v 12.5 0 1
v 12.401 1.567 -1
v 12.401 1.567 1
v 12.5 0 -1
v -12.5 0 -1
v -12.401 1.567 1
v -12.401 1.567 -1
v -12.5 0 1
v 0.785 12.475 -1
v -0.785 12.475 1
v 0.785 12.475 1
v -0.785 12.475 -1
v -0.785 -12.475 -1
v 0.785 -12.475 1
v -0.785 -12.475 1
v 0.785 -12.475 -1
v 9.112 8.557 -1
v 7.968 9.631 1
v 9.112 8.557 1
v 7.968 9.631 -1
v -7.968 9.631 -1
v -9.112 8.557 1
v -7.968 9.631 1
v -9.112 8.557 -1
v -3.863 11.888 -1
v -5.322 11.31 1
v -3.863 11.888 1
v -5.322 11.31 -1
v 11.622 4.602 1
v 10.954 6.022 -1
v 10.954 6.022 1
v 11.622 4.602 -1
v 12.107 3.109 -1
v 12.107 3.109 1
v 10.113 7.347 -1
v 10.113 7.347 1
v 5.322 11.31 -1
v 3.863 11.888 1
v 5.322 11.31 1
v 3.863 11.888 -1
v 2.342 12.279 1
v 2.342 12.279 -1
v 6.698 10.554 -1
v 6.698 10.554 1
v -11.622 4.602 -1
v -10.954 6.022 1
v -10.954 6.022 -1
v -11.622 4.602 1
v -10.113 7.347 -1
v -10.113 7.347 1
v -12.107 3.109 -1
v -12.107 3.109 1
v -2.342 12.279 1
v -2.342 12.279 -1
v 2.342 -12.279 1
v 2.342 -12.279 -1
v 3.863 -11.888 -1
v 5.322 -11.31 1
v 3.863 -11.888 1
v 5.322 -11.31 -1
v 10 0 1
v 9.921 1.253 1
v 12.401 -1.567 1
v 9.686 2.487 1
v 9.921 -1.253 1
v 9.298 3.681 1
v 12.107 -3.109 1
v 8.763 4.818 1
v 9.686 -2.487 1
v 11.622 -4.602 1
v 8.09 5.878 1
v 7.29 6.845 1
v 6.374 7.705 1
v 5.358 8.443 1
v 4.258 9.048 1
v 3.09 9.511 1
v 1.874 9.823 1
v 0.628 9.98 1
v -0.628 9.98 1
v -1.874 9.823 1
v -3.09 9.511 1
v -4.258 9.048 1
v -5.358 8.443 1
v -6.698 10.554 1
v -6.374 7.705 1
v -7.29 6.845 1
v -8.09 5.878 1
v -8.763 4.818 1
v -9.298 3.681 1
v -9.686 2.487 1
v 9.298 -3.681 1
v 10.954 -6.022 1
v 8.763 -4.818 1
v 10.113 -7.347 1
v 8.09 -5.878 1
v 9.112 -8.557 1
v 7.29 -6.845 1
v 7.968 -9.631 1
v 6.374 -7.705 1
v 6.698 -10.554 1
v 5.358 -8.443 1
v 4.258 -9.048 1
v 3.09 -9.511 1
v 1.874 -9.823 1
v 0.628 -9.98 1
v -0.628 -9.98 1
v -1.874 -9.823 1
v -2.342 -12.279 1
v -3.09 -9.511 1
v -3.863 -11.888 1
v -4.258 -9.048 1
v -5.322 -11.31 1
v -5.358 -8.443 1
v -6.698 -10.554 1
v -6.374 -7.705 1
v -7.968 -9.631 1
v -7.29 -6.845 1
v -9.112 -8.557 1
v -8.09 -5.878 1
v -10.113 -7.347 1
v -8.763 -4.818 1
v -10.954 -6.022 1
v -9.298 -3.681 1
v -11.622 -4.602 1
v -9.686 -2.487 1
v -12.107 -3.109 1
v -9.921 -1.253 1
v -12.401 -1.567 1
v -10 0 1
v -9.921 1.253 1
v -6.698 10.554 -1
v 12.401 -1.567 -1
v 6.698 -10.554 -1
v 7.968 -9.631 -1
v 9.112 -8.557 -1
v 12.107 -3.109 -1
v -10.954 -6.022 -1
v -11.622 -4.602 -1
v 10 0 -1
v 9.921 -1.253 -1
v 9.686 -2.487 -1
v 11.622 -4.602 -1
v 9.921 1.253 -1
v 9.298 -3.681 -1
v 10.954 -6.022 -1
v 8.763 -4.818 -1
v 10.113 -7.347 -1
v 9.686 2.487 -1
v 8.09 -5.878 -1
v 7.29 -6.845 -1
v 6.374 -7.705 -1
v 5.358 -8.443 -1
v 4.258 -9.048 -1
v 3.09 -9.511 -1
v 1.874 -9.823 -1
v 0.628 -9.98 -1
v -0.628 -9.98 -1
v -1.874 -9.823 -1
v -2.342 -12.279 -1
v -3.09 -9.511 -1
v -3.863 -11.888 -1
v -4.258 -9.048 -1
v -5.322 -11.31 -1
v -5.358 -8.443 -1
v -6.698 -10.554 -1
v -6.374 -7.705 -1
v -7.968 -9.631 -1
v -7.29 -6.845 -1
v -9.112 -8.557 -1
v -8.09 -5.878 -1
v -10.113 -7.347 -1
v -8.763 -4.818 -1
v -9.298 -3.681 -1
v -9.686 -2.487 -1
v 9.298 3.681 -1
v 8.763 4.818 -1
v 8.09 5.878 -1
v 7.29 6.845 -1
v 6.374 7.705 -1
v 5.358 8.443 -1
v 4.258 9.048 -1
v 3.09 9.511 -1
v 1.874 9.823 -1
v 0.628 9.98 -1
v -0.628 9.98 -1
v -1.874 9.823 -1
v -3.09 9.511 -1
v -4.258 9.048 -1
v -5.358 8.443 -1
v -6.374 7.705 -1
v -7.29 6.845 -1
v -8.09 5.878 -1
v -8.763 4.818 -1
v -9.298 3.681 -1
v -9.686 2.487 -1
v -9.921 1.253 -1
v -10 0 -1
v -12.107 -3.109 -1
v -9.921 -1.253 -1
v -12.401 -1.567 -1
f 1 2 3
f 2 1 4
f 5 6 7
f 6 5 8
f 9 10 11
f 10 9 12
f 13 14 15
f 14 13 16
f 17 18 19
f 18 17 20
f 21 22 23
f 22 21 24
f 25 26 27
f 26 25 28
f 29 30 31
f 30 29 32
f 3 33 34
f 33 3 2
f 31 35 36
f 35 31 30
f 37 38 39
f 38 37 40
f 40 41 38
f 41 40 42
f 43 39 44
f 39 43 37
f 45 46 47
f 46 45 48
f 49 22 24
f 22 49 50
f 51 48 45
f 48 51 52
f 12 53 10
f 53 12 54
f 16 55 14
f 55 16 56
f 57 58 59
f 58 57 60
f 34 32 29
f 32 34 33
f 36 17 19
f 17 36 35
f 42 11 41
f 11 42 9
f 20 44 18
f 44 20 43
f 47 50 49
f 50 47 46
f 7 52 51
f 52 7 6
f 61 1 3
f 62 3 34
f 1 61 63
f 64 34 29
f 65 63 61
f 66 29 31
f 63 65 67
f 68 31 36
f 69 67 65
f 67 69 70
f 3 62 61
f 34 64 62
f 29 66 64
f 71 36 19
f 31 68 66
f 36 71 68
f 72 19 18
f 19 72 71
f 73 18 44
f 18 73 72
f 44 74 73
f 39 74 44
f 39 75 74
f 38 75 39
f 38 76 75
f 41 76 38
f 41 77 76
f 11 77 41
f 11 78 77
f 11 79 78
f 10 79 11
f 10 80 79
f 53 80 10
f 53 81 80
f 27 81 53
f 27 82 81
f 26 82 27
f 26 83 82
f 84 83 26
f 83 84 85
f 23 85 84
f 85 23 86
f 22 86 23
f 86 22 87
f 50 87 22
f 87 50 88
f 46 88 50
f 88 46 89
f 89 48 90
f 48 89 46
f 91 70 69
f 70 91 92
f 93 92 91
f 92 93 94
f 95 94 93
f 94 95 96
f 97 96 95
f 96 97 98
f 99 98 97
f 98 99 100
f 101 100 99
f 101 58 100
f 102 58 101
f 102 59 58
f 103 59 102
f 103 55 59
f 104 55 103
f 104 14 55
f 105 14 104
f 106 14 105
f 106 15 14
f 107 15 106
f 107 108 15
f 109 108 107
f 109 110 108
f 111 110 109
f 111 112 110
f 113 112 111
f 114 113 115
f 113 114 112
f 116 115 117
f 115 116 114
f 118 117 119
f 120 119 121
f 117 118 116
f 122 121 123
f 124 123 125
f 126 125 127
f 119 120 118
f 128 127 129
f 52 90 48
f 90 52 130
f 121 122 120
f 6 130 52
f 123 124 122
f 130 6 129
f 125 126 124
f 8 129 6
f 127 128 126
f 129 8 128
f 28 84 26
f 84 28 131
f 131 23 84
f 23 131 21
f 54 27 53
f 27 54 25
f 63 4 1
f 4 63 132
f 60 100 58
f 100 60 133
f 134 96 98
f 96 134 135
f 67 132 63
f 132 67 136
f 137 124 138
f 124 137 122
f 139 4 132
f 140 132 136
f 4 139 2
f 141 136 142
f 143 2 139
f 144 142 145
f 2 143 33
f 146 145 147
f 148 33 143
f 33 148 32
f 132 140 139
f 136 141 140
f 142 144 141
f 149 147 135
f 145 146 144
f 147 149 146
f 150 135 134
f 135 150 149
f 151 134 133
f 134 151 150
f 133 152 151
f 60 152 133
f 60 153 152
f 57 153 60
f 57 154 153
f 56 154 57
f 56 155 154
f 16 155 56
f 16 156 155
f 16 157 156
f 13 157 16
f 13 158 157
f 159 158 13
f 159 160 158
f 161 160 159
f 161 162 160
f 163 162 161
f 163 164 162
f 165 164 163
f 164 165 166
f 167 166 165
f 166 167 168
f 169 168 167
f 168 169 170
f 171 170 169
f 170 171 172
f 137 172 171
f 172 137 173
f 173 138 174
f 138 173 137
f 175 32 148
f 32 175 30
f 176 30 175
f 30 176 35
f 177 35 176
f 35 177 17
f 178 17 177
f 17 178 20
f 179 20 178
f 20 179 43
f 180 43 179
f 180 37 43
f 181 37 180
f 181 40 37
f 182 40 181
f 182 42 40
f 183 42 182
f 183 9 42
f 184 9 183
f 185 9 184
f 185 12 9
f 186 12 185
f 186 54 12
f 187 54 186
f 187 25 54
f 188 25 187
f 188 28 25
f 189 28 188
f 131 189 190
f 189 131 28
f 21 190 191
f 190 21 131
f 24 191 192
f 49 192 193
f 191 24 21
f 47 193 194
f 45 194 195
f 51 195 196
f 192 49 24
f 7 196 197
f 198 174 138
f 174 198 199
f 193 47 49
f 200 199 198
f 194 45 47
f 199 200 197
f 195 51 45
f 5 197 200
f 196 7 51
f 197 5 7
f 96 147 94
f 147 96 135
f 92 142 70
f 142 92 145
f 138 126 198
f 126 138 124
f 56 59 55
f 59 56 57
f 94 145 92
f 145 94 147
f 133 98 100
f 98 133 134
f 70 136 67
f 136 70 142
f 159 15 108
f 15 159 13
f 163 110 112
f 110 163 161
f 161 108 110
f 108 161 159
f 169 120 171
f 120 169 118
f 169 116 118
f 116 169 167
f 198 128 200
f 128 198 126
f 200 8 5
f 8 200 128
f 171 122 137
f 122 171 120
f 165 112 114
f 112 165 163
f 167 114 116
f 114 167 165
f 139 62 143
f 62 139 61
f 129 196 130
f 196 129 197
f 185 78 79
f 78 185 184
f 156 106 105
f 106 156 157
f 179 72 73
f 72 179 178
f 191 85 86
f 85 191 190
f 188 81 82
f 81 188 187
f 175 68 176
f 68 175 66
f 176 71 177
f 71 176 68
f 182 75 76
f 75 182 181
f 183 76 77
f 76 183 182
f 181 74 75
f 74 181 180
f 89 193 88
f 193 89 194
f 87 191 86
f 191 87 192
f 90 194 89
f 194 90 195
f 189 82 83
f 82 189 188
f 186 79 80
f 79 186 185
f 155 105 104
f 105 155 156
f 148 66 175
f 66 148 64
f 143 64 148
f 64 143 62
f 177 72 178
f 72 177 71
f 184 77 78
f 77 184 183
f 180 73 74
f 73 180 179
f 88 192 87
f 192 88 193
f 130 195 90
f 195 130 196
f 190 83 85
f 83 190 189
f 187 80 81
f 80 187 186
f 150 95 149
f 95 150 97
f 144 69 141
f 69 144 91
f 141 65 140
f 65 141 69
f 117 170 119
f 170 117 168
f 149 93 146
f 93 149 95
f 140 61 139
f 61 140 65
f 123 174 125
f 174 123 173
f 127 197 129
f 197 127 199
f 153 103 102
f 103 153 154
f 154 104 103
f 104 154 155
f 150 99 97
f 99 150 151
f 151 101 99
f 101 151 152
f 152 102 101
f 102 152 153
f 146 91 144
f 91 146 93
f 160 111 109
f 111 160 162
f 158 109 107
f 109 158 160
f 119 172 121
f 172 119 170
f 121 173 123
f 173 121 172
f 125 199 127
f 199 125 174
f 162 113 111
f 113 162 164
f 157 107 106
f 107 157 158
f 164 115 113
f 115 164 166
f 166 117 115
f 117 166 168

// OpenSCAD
$fn = 50;


difference() {
	union() {
		translate(v = [0, 0, -1.0000000000]) {
			rotate(a = [0, 0, 0]) {
				cylinder(h = 2, r = 12.5000000000);
			}
		}
	}
	union() {
		translate(v = [0, 0, -1.0000000000]) {
			rotate(a = [0, 0, 0]) {
				cylinder(h = 2, r = 10.0000000000);
			}
		}
	}
}
